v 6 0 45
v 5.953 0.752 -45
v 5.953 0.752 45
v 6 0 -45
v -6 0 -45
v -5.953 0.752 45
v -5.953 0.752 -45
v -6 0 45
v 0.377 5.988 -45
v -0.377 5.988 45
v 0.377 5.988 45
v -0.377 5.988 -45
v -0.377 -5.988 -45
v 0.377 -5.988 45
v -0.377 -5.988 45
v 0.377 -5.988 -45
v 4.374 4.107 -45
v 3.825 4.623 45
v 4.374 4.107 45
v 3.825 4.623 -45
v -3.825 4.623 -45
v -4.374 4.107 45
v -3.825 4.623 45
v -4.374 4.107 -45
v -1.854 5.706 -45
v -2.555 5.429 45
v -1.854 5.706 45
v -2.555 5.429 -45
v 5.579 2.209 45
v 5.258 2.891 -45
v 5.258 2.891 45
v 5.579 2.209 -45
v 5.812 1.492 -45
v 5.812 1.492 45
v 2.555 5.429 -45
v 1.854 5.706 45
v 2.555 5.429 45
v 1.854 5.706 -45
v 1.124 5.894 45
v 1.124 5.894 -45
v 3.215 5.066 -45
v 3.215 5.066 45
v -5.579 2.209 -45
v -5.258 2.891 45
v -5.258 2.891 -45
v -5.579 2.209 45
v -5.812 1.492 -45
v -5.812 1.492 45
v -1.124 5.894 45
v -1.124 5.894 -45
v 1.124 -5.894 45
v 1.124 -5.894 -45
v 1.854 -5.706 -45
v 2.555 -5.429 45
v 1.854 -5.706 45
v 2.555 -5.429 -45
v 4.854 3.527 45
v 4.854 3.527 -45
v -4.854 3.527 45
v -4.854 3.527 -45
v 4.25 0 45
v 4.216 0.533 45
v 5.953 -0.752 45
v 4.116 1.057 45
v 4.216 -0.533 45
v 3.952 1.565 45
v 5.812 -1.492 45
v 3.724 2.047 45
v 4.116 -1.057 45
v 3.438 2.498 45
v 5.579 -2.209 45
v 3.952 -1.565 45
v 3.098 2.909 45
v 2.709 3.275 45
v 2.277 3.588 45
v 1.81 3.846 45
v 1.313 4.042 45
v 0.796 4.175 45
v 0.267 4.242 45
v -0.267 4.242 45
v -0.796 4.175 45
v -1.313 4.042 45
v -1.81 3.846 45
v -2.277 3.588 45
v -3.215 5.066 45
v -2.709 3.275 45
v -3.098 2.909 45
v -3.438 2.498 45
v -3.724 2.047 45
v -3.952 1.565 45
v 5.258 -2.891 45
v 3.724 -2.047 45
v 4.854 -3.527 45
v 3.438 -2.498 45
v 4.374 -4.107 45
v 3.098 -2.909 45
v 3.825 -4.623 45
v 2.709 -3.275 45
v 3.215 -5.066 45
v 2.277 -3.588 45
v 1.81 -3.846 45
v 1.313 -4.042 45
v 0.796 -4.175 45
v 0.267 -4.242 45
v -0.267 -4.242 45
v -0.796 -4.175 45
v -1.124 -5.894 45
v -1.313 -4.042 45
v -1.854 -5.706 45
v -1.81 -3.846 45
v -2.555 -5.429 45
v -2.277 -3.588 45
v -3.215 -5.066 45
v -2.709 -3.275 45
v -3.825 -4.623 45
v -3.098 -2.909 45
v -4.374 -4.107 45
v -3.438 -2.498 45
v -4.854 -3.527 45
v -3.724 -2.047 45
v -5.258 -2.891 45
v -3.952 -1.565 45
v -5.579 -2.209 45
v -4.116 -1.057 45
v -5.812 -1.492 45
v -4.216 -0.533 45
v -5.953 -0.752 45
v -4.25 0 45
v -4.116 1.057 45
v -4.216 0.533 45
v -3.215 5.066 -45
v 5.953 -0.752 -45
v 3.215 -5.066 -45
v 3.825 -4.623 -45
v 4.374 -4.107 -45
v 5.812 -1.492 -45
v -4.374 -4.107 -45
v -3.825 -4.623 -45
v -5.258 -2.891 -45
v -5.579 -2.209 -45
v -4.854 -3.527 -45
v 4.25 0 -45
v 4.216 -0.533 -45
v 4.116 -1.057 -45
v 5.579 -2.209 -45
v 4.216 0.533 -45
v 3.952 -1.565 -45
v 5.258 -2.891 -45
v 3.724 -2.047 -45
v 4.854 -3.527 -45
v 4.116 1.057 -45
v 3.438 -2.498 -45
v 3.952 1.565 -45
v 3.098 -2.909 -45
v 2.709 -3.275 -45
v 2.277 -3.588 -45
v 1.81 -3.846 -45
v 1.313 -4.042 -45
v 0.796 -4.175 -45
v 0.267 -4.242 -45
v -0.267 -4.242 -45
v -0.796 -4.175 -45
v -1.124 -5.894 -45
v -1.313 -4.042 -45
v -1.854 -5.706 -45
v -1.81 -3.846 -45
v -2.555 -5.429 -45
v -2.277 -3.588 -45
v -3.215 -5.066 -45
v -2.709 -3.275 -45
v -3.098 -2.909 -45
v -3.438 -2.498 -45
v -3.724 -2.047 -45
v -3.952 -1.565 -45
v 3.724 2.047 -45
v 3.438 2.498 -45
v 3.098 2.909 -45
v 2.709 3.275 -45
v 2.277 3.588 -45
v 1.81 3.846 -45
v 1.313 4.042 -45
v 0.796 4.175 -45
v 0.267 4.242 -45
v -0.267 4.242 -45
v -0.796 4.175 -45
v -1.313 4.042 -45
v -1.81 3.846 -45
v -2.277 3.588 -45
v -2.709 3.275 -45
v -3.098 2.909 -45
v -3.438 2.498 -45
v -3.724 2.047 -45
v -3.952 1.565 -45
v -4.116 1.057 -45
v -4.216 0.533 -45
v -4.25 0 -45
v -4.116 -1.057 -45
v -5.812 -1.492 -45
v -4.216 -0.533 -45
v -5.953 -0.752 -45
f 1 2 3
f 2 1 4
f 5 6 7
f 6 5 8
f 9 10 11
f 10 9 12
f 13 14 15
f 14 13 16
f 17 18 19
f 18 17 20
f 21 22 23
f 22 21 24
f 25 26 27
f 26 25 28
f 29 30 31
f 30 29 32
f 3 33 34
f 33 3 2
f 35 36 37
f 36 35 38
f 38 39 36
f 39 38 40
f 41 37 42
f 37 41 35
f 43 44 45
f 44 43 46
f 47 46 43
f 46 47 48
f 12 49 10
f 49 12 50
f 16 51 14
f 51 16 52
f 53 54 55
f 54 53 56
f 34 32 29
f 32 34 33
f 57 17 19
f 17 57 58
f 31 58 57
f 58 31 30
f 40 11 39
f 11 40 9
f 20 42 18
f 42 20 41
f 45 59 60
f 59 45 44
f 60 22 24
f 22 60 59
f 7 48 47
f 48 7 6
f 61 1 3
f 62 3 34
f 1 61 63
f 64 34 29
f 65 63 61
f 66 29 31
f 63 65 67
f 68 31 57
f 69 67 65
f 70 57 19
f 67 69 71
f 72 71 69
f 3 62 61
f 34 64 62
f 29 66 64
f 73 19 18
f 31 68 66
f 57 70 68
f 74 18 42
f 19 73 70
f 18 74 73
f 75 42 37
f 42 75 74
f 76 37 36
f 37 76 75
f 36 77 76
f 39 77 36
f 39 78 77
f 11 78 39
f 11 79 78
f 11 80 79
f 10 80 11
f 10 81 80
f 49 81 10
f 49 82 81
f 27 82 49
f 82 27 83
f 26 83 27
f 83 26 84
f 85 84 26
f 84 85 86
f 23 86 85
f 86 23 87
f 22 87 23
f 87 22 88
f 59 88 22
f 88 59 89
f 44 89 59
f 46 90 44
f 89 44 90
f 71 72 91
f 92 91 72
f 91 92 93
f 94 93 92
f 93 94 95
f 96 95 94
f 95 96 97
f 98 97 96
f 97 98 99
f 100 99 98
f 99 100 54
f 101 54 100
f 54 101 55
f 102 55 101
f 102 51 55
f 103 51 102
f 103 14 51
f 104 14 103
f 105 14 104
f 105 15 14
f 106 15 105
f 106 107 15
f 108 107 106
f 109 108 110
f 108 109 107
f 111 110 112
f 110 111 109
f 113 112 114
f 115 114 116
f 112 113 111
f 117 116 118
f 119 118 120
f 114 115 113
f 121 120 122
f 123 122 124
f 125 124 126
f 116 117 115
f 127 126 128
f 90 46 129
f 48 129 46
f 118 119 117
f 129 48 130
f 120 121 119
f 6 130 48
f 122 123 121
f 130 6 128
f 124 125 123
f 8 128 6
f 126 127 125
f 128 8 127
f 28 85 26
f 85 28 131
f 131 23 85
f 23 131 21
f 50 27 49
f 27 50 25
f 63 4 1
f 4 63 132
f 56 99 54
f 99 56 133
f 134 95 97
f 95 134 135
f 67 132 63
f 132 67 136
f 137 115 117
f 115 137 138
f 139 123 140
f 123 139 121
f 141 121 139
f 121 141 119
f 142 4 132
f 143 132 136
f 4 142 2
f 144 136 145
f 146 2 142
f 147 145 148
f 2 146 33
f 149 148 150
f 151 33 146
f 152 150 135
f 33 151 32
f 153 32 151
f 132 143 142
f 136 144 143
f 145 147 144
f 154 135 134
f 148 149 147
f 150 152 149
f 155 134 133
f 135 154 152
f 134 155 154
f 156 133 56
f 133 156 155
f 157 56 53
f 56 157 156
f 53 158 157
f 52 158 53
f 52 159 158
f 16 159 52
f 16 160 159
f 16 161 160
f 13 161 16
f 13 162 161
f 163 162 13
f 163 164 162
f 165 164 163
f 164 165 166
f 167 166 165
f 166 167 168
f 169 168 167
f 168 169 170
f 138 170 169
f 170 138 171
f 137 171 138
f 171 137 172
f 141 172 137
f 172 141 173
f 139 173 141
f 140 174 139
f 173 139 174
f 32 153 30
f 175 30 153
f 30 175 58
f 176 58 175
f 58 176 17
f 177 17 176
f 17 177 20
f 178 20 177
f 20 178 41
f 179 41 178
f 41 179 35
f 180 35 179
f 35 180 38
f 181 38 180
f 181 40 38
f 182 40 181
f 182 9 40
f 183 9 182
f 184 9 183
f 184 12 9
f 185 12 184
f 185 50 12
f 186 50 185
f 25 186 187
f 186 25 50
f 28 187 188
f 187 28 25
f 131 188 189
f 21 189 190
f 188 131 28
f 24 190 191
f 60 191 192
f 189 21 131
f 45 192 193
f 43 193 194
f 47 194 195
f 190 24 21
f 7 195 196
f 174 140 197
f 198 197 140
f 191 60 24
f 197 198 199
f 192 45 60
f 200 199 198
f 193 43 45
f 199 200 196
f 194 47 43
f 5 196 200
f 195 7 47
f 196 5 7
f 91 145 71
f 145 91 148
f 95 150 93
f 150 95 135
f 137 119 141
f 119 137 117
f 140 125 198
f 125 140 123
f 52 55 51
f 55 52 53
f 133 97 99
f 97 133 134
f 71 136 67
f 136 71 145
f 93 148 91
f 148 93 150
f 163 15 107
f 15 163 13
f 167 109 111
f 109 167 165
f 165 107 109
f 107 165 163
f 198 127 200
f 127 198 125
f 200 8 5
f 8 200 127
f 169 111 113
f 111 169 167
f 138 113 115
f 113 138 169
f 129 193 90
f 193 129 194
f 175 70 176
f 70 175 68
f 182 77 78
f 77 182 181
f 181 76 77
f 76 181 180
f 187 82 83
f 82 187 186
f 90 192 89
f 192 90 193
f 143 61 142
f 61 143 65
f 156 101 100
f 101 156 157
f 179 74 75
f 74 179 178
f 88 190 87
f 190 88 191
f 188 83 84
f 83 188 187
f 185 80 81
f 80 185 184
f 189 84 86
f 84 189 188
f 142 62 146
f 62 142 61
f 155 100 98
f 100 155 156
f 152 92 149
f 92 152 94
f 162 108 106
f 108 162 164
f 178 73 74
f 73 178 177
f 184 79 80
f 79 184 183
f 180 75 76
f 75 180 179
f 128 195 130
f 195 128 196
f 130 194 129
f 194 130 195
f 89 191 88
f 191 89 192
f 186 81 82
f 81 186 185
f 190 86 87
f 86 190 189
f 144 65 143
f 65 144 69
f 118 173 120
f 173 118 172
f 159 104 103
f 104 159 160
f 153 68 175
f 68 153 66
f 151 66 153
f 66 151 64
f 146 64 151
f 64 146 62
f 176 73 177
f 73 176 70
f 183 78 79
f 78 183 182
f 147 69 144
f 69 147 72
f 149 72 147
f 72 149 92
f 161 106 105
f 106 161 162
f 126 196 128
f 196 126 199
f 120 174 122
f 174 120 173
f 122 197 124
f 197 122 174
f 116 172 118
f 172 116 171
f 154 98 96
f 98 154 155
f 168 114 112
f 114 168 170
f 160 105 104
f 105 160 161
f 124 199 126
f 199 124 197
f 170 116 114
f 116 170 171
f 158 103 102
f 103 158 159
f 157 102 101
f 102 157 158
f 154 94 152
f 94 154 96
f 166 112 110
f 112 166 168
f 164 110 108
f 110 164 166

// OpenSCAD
$fn = 50;


difference() {
	union() {
		translate(v = [0, 0, -45.0000000000]) {
			cylinder(h = 90, r = 6.0000000000);
		}
	}
	union() {
		translate(v = [0, 0, -100.0000000000]) {
			cylinder(h = 200, r = 4.2500000000);
		}
	}
}
